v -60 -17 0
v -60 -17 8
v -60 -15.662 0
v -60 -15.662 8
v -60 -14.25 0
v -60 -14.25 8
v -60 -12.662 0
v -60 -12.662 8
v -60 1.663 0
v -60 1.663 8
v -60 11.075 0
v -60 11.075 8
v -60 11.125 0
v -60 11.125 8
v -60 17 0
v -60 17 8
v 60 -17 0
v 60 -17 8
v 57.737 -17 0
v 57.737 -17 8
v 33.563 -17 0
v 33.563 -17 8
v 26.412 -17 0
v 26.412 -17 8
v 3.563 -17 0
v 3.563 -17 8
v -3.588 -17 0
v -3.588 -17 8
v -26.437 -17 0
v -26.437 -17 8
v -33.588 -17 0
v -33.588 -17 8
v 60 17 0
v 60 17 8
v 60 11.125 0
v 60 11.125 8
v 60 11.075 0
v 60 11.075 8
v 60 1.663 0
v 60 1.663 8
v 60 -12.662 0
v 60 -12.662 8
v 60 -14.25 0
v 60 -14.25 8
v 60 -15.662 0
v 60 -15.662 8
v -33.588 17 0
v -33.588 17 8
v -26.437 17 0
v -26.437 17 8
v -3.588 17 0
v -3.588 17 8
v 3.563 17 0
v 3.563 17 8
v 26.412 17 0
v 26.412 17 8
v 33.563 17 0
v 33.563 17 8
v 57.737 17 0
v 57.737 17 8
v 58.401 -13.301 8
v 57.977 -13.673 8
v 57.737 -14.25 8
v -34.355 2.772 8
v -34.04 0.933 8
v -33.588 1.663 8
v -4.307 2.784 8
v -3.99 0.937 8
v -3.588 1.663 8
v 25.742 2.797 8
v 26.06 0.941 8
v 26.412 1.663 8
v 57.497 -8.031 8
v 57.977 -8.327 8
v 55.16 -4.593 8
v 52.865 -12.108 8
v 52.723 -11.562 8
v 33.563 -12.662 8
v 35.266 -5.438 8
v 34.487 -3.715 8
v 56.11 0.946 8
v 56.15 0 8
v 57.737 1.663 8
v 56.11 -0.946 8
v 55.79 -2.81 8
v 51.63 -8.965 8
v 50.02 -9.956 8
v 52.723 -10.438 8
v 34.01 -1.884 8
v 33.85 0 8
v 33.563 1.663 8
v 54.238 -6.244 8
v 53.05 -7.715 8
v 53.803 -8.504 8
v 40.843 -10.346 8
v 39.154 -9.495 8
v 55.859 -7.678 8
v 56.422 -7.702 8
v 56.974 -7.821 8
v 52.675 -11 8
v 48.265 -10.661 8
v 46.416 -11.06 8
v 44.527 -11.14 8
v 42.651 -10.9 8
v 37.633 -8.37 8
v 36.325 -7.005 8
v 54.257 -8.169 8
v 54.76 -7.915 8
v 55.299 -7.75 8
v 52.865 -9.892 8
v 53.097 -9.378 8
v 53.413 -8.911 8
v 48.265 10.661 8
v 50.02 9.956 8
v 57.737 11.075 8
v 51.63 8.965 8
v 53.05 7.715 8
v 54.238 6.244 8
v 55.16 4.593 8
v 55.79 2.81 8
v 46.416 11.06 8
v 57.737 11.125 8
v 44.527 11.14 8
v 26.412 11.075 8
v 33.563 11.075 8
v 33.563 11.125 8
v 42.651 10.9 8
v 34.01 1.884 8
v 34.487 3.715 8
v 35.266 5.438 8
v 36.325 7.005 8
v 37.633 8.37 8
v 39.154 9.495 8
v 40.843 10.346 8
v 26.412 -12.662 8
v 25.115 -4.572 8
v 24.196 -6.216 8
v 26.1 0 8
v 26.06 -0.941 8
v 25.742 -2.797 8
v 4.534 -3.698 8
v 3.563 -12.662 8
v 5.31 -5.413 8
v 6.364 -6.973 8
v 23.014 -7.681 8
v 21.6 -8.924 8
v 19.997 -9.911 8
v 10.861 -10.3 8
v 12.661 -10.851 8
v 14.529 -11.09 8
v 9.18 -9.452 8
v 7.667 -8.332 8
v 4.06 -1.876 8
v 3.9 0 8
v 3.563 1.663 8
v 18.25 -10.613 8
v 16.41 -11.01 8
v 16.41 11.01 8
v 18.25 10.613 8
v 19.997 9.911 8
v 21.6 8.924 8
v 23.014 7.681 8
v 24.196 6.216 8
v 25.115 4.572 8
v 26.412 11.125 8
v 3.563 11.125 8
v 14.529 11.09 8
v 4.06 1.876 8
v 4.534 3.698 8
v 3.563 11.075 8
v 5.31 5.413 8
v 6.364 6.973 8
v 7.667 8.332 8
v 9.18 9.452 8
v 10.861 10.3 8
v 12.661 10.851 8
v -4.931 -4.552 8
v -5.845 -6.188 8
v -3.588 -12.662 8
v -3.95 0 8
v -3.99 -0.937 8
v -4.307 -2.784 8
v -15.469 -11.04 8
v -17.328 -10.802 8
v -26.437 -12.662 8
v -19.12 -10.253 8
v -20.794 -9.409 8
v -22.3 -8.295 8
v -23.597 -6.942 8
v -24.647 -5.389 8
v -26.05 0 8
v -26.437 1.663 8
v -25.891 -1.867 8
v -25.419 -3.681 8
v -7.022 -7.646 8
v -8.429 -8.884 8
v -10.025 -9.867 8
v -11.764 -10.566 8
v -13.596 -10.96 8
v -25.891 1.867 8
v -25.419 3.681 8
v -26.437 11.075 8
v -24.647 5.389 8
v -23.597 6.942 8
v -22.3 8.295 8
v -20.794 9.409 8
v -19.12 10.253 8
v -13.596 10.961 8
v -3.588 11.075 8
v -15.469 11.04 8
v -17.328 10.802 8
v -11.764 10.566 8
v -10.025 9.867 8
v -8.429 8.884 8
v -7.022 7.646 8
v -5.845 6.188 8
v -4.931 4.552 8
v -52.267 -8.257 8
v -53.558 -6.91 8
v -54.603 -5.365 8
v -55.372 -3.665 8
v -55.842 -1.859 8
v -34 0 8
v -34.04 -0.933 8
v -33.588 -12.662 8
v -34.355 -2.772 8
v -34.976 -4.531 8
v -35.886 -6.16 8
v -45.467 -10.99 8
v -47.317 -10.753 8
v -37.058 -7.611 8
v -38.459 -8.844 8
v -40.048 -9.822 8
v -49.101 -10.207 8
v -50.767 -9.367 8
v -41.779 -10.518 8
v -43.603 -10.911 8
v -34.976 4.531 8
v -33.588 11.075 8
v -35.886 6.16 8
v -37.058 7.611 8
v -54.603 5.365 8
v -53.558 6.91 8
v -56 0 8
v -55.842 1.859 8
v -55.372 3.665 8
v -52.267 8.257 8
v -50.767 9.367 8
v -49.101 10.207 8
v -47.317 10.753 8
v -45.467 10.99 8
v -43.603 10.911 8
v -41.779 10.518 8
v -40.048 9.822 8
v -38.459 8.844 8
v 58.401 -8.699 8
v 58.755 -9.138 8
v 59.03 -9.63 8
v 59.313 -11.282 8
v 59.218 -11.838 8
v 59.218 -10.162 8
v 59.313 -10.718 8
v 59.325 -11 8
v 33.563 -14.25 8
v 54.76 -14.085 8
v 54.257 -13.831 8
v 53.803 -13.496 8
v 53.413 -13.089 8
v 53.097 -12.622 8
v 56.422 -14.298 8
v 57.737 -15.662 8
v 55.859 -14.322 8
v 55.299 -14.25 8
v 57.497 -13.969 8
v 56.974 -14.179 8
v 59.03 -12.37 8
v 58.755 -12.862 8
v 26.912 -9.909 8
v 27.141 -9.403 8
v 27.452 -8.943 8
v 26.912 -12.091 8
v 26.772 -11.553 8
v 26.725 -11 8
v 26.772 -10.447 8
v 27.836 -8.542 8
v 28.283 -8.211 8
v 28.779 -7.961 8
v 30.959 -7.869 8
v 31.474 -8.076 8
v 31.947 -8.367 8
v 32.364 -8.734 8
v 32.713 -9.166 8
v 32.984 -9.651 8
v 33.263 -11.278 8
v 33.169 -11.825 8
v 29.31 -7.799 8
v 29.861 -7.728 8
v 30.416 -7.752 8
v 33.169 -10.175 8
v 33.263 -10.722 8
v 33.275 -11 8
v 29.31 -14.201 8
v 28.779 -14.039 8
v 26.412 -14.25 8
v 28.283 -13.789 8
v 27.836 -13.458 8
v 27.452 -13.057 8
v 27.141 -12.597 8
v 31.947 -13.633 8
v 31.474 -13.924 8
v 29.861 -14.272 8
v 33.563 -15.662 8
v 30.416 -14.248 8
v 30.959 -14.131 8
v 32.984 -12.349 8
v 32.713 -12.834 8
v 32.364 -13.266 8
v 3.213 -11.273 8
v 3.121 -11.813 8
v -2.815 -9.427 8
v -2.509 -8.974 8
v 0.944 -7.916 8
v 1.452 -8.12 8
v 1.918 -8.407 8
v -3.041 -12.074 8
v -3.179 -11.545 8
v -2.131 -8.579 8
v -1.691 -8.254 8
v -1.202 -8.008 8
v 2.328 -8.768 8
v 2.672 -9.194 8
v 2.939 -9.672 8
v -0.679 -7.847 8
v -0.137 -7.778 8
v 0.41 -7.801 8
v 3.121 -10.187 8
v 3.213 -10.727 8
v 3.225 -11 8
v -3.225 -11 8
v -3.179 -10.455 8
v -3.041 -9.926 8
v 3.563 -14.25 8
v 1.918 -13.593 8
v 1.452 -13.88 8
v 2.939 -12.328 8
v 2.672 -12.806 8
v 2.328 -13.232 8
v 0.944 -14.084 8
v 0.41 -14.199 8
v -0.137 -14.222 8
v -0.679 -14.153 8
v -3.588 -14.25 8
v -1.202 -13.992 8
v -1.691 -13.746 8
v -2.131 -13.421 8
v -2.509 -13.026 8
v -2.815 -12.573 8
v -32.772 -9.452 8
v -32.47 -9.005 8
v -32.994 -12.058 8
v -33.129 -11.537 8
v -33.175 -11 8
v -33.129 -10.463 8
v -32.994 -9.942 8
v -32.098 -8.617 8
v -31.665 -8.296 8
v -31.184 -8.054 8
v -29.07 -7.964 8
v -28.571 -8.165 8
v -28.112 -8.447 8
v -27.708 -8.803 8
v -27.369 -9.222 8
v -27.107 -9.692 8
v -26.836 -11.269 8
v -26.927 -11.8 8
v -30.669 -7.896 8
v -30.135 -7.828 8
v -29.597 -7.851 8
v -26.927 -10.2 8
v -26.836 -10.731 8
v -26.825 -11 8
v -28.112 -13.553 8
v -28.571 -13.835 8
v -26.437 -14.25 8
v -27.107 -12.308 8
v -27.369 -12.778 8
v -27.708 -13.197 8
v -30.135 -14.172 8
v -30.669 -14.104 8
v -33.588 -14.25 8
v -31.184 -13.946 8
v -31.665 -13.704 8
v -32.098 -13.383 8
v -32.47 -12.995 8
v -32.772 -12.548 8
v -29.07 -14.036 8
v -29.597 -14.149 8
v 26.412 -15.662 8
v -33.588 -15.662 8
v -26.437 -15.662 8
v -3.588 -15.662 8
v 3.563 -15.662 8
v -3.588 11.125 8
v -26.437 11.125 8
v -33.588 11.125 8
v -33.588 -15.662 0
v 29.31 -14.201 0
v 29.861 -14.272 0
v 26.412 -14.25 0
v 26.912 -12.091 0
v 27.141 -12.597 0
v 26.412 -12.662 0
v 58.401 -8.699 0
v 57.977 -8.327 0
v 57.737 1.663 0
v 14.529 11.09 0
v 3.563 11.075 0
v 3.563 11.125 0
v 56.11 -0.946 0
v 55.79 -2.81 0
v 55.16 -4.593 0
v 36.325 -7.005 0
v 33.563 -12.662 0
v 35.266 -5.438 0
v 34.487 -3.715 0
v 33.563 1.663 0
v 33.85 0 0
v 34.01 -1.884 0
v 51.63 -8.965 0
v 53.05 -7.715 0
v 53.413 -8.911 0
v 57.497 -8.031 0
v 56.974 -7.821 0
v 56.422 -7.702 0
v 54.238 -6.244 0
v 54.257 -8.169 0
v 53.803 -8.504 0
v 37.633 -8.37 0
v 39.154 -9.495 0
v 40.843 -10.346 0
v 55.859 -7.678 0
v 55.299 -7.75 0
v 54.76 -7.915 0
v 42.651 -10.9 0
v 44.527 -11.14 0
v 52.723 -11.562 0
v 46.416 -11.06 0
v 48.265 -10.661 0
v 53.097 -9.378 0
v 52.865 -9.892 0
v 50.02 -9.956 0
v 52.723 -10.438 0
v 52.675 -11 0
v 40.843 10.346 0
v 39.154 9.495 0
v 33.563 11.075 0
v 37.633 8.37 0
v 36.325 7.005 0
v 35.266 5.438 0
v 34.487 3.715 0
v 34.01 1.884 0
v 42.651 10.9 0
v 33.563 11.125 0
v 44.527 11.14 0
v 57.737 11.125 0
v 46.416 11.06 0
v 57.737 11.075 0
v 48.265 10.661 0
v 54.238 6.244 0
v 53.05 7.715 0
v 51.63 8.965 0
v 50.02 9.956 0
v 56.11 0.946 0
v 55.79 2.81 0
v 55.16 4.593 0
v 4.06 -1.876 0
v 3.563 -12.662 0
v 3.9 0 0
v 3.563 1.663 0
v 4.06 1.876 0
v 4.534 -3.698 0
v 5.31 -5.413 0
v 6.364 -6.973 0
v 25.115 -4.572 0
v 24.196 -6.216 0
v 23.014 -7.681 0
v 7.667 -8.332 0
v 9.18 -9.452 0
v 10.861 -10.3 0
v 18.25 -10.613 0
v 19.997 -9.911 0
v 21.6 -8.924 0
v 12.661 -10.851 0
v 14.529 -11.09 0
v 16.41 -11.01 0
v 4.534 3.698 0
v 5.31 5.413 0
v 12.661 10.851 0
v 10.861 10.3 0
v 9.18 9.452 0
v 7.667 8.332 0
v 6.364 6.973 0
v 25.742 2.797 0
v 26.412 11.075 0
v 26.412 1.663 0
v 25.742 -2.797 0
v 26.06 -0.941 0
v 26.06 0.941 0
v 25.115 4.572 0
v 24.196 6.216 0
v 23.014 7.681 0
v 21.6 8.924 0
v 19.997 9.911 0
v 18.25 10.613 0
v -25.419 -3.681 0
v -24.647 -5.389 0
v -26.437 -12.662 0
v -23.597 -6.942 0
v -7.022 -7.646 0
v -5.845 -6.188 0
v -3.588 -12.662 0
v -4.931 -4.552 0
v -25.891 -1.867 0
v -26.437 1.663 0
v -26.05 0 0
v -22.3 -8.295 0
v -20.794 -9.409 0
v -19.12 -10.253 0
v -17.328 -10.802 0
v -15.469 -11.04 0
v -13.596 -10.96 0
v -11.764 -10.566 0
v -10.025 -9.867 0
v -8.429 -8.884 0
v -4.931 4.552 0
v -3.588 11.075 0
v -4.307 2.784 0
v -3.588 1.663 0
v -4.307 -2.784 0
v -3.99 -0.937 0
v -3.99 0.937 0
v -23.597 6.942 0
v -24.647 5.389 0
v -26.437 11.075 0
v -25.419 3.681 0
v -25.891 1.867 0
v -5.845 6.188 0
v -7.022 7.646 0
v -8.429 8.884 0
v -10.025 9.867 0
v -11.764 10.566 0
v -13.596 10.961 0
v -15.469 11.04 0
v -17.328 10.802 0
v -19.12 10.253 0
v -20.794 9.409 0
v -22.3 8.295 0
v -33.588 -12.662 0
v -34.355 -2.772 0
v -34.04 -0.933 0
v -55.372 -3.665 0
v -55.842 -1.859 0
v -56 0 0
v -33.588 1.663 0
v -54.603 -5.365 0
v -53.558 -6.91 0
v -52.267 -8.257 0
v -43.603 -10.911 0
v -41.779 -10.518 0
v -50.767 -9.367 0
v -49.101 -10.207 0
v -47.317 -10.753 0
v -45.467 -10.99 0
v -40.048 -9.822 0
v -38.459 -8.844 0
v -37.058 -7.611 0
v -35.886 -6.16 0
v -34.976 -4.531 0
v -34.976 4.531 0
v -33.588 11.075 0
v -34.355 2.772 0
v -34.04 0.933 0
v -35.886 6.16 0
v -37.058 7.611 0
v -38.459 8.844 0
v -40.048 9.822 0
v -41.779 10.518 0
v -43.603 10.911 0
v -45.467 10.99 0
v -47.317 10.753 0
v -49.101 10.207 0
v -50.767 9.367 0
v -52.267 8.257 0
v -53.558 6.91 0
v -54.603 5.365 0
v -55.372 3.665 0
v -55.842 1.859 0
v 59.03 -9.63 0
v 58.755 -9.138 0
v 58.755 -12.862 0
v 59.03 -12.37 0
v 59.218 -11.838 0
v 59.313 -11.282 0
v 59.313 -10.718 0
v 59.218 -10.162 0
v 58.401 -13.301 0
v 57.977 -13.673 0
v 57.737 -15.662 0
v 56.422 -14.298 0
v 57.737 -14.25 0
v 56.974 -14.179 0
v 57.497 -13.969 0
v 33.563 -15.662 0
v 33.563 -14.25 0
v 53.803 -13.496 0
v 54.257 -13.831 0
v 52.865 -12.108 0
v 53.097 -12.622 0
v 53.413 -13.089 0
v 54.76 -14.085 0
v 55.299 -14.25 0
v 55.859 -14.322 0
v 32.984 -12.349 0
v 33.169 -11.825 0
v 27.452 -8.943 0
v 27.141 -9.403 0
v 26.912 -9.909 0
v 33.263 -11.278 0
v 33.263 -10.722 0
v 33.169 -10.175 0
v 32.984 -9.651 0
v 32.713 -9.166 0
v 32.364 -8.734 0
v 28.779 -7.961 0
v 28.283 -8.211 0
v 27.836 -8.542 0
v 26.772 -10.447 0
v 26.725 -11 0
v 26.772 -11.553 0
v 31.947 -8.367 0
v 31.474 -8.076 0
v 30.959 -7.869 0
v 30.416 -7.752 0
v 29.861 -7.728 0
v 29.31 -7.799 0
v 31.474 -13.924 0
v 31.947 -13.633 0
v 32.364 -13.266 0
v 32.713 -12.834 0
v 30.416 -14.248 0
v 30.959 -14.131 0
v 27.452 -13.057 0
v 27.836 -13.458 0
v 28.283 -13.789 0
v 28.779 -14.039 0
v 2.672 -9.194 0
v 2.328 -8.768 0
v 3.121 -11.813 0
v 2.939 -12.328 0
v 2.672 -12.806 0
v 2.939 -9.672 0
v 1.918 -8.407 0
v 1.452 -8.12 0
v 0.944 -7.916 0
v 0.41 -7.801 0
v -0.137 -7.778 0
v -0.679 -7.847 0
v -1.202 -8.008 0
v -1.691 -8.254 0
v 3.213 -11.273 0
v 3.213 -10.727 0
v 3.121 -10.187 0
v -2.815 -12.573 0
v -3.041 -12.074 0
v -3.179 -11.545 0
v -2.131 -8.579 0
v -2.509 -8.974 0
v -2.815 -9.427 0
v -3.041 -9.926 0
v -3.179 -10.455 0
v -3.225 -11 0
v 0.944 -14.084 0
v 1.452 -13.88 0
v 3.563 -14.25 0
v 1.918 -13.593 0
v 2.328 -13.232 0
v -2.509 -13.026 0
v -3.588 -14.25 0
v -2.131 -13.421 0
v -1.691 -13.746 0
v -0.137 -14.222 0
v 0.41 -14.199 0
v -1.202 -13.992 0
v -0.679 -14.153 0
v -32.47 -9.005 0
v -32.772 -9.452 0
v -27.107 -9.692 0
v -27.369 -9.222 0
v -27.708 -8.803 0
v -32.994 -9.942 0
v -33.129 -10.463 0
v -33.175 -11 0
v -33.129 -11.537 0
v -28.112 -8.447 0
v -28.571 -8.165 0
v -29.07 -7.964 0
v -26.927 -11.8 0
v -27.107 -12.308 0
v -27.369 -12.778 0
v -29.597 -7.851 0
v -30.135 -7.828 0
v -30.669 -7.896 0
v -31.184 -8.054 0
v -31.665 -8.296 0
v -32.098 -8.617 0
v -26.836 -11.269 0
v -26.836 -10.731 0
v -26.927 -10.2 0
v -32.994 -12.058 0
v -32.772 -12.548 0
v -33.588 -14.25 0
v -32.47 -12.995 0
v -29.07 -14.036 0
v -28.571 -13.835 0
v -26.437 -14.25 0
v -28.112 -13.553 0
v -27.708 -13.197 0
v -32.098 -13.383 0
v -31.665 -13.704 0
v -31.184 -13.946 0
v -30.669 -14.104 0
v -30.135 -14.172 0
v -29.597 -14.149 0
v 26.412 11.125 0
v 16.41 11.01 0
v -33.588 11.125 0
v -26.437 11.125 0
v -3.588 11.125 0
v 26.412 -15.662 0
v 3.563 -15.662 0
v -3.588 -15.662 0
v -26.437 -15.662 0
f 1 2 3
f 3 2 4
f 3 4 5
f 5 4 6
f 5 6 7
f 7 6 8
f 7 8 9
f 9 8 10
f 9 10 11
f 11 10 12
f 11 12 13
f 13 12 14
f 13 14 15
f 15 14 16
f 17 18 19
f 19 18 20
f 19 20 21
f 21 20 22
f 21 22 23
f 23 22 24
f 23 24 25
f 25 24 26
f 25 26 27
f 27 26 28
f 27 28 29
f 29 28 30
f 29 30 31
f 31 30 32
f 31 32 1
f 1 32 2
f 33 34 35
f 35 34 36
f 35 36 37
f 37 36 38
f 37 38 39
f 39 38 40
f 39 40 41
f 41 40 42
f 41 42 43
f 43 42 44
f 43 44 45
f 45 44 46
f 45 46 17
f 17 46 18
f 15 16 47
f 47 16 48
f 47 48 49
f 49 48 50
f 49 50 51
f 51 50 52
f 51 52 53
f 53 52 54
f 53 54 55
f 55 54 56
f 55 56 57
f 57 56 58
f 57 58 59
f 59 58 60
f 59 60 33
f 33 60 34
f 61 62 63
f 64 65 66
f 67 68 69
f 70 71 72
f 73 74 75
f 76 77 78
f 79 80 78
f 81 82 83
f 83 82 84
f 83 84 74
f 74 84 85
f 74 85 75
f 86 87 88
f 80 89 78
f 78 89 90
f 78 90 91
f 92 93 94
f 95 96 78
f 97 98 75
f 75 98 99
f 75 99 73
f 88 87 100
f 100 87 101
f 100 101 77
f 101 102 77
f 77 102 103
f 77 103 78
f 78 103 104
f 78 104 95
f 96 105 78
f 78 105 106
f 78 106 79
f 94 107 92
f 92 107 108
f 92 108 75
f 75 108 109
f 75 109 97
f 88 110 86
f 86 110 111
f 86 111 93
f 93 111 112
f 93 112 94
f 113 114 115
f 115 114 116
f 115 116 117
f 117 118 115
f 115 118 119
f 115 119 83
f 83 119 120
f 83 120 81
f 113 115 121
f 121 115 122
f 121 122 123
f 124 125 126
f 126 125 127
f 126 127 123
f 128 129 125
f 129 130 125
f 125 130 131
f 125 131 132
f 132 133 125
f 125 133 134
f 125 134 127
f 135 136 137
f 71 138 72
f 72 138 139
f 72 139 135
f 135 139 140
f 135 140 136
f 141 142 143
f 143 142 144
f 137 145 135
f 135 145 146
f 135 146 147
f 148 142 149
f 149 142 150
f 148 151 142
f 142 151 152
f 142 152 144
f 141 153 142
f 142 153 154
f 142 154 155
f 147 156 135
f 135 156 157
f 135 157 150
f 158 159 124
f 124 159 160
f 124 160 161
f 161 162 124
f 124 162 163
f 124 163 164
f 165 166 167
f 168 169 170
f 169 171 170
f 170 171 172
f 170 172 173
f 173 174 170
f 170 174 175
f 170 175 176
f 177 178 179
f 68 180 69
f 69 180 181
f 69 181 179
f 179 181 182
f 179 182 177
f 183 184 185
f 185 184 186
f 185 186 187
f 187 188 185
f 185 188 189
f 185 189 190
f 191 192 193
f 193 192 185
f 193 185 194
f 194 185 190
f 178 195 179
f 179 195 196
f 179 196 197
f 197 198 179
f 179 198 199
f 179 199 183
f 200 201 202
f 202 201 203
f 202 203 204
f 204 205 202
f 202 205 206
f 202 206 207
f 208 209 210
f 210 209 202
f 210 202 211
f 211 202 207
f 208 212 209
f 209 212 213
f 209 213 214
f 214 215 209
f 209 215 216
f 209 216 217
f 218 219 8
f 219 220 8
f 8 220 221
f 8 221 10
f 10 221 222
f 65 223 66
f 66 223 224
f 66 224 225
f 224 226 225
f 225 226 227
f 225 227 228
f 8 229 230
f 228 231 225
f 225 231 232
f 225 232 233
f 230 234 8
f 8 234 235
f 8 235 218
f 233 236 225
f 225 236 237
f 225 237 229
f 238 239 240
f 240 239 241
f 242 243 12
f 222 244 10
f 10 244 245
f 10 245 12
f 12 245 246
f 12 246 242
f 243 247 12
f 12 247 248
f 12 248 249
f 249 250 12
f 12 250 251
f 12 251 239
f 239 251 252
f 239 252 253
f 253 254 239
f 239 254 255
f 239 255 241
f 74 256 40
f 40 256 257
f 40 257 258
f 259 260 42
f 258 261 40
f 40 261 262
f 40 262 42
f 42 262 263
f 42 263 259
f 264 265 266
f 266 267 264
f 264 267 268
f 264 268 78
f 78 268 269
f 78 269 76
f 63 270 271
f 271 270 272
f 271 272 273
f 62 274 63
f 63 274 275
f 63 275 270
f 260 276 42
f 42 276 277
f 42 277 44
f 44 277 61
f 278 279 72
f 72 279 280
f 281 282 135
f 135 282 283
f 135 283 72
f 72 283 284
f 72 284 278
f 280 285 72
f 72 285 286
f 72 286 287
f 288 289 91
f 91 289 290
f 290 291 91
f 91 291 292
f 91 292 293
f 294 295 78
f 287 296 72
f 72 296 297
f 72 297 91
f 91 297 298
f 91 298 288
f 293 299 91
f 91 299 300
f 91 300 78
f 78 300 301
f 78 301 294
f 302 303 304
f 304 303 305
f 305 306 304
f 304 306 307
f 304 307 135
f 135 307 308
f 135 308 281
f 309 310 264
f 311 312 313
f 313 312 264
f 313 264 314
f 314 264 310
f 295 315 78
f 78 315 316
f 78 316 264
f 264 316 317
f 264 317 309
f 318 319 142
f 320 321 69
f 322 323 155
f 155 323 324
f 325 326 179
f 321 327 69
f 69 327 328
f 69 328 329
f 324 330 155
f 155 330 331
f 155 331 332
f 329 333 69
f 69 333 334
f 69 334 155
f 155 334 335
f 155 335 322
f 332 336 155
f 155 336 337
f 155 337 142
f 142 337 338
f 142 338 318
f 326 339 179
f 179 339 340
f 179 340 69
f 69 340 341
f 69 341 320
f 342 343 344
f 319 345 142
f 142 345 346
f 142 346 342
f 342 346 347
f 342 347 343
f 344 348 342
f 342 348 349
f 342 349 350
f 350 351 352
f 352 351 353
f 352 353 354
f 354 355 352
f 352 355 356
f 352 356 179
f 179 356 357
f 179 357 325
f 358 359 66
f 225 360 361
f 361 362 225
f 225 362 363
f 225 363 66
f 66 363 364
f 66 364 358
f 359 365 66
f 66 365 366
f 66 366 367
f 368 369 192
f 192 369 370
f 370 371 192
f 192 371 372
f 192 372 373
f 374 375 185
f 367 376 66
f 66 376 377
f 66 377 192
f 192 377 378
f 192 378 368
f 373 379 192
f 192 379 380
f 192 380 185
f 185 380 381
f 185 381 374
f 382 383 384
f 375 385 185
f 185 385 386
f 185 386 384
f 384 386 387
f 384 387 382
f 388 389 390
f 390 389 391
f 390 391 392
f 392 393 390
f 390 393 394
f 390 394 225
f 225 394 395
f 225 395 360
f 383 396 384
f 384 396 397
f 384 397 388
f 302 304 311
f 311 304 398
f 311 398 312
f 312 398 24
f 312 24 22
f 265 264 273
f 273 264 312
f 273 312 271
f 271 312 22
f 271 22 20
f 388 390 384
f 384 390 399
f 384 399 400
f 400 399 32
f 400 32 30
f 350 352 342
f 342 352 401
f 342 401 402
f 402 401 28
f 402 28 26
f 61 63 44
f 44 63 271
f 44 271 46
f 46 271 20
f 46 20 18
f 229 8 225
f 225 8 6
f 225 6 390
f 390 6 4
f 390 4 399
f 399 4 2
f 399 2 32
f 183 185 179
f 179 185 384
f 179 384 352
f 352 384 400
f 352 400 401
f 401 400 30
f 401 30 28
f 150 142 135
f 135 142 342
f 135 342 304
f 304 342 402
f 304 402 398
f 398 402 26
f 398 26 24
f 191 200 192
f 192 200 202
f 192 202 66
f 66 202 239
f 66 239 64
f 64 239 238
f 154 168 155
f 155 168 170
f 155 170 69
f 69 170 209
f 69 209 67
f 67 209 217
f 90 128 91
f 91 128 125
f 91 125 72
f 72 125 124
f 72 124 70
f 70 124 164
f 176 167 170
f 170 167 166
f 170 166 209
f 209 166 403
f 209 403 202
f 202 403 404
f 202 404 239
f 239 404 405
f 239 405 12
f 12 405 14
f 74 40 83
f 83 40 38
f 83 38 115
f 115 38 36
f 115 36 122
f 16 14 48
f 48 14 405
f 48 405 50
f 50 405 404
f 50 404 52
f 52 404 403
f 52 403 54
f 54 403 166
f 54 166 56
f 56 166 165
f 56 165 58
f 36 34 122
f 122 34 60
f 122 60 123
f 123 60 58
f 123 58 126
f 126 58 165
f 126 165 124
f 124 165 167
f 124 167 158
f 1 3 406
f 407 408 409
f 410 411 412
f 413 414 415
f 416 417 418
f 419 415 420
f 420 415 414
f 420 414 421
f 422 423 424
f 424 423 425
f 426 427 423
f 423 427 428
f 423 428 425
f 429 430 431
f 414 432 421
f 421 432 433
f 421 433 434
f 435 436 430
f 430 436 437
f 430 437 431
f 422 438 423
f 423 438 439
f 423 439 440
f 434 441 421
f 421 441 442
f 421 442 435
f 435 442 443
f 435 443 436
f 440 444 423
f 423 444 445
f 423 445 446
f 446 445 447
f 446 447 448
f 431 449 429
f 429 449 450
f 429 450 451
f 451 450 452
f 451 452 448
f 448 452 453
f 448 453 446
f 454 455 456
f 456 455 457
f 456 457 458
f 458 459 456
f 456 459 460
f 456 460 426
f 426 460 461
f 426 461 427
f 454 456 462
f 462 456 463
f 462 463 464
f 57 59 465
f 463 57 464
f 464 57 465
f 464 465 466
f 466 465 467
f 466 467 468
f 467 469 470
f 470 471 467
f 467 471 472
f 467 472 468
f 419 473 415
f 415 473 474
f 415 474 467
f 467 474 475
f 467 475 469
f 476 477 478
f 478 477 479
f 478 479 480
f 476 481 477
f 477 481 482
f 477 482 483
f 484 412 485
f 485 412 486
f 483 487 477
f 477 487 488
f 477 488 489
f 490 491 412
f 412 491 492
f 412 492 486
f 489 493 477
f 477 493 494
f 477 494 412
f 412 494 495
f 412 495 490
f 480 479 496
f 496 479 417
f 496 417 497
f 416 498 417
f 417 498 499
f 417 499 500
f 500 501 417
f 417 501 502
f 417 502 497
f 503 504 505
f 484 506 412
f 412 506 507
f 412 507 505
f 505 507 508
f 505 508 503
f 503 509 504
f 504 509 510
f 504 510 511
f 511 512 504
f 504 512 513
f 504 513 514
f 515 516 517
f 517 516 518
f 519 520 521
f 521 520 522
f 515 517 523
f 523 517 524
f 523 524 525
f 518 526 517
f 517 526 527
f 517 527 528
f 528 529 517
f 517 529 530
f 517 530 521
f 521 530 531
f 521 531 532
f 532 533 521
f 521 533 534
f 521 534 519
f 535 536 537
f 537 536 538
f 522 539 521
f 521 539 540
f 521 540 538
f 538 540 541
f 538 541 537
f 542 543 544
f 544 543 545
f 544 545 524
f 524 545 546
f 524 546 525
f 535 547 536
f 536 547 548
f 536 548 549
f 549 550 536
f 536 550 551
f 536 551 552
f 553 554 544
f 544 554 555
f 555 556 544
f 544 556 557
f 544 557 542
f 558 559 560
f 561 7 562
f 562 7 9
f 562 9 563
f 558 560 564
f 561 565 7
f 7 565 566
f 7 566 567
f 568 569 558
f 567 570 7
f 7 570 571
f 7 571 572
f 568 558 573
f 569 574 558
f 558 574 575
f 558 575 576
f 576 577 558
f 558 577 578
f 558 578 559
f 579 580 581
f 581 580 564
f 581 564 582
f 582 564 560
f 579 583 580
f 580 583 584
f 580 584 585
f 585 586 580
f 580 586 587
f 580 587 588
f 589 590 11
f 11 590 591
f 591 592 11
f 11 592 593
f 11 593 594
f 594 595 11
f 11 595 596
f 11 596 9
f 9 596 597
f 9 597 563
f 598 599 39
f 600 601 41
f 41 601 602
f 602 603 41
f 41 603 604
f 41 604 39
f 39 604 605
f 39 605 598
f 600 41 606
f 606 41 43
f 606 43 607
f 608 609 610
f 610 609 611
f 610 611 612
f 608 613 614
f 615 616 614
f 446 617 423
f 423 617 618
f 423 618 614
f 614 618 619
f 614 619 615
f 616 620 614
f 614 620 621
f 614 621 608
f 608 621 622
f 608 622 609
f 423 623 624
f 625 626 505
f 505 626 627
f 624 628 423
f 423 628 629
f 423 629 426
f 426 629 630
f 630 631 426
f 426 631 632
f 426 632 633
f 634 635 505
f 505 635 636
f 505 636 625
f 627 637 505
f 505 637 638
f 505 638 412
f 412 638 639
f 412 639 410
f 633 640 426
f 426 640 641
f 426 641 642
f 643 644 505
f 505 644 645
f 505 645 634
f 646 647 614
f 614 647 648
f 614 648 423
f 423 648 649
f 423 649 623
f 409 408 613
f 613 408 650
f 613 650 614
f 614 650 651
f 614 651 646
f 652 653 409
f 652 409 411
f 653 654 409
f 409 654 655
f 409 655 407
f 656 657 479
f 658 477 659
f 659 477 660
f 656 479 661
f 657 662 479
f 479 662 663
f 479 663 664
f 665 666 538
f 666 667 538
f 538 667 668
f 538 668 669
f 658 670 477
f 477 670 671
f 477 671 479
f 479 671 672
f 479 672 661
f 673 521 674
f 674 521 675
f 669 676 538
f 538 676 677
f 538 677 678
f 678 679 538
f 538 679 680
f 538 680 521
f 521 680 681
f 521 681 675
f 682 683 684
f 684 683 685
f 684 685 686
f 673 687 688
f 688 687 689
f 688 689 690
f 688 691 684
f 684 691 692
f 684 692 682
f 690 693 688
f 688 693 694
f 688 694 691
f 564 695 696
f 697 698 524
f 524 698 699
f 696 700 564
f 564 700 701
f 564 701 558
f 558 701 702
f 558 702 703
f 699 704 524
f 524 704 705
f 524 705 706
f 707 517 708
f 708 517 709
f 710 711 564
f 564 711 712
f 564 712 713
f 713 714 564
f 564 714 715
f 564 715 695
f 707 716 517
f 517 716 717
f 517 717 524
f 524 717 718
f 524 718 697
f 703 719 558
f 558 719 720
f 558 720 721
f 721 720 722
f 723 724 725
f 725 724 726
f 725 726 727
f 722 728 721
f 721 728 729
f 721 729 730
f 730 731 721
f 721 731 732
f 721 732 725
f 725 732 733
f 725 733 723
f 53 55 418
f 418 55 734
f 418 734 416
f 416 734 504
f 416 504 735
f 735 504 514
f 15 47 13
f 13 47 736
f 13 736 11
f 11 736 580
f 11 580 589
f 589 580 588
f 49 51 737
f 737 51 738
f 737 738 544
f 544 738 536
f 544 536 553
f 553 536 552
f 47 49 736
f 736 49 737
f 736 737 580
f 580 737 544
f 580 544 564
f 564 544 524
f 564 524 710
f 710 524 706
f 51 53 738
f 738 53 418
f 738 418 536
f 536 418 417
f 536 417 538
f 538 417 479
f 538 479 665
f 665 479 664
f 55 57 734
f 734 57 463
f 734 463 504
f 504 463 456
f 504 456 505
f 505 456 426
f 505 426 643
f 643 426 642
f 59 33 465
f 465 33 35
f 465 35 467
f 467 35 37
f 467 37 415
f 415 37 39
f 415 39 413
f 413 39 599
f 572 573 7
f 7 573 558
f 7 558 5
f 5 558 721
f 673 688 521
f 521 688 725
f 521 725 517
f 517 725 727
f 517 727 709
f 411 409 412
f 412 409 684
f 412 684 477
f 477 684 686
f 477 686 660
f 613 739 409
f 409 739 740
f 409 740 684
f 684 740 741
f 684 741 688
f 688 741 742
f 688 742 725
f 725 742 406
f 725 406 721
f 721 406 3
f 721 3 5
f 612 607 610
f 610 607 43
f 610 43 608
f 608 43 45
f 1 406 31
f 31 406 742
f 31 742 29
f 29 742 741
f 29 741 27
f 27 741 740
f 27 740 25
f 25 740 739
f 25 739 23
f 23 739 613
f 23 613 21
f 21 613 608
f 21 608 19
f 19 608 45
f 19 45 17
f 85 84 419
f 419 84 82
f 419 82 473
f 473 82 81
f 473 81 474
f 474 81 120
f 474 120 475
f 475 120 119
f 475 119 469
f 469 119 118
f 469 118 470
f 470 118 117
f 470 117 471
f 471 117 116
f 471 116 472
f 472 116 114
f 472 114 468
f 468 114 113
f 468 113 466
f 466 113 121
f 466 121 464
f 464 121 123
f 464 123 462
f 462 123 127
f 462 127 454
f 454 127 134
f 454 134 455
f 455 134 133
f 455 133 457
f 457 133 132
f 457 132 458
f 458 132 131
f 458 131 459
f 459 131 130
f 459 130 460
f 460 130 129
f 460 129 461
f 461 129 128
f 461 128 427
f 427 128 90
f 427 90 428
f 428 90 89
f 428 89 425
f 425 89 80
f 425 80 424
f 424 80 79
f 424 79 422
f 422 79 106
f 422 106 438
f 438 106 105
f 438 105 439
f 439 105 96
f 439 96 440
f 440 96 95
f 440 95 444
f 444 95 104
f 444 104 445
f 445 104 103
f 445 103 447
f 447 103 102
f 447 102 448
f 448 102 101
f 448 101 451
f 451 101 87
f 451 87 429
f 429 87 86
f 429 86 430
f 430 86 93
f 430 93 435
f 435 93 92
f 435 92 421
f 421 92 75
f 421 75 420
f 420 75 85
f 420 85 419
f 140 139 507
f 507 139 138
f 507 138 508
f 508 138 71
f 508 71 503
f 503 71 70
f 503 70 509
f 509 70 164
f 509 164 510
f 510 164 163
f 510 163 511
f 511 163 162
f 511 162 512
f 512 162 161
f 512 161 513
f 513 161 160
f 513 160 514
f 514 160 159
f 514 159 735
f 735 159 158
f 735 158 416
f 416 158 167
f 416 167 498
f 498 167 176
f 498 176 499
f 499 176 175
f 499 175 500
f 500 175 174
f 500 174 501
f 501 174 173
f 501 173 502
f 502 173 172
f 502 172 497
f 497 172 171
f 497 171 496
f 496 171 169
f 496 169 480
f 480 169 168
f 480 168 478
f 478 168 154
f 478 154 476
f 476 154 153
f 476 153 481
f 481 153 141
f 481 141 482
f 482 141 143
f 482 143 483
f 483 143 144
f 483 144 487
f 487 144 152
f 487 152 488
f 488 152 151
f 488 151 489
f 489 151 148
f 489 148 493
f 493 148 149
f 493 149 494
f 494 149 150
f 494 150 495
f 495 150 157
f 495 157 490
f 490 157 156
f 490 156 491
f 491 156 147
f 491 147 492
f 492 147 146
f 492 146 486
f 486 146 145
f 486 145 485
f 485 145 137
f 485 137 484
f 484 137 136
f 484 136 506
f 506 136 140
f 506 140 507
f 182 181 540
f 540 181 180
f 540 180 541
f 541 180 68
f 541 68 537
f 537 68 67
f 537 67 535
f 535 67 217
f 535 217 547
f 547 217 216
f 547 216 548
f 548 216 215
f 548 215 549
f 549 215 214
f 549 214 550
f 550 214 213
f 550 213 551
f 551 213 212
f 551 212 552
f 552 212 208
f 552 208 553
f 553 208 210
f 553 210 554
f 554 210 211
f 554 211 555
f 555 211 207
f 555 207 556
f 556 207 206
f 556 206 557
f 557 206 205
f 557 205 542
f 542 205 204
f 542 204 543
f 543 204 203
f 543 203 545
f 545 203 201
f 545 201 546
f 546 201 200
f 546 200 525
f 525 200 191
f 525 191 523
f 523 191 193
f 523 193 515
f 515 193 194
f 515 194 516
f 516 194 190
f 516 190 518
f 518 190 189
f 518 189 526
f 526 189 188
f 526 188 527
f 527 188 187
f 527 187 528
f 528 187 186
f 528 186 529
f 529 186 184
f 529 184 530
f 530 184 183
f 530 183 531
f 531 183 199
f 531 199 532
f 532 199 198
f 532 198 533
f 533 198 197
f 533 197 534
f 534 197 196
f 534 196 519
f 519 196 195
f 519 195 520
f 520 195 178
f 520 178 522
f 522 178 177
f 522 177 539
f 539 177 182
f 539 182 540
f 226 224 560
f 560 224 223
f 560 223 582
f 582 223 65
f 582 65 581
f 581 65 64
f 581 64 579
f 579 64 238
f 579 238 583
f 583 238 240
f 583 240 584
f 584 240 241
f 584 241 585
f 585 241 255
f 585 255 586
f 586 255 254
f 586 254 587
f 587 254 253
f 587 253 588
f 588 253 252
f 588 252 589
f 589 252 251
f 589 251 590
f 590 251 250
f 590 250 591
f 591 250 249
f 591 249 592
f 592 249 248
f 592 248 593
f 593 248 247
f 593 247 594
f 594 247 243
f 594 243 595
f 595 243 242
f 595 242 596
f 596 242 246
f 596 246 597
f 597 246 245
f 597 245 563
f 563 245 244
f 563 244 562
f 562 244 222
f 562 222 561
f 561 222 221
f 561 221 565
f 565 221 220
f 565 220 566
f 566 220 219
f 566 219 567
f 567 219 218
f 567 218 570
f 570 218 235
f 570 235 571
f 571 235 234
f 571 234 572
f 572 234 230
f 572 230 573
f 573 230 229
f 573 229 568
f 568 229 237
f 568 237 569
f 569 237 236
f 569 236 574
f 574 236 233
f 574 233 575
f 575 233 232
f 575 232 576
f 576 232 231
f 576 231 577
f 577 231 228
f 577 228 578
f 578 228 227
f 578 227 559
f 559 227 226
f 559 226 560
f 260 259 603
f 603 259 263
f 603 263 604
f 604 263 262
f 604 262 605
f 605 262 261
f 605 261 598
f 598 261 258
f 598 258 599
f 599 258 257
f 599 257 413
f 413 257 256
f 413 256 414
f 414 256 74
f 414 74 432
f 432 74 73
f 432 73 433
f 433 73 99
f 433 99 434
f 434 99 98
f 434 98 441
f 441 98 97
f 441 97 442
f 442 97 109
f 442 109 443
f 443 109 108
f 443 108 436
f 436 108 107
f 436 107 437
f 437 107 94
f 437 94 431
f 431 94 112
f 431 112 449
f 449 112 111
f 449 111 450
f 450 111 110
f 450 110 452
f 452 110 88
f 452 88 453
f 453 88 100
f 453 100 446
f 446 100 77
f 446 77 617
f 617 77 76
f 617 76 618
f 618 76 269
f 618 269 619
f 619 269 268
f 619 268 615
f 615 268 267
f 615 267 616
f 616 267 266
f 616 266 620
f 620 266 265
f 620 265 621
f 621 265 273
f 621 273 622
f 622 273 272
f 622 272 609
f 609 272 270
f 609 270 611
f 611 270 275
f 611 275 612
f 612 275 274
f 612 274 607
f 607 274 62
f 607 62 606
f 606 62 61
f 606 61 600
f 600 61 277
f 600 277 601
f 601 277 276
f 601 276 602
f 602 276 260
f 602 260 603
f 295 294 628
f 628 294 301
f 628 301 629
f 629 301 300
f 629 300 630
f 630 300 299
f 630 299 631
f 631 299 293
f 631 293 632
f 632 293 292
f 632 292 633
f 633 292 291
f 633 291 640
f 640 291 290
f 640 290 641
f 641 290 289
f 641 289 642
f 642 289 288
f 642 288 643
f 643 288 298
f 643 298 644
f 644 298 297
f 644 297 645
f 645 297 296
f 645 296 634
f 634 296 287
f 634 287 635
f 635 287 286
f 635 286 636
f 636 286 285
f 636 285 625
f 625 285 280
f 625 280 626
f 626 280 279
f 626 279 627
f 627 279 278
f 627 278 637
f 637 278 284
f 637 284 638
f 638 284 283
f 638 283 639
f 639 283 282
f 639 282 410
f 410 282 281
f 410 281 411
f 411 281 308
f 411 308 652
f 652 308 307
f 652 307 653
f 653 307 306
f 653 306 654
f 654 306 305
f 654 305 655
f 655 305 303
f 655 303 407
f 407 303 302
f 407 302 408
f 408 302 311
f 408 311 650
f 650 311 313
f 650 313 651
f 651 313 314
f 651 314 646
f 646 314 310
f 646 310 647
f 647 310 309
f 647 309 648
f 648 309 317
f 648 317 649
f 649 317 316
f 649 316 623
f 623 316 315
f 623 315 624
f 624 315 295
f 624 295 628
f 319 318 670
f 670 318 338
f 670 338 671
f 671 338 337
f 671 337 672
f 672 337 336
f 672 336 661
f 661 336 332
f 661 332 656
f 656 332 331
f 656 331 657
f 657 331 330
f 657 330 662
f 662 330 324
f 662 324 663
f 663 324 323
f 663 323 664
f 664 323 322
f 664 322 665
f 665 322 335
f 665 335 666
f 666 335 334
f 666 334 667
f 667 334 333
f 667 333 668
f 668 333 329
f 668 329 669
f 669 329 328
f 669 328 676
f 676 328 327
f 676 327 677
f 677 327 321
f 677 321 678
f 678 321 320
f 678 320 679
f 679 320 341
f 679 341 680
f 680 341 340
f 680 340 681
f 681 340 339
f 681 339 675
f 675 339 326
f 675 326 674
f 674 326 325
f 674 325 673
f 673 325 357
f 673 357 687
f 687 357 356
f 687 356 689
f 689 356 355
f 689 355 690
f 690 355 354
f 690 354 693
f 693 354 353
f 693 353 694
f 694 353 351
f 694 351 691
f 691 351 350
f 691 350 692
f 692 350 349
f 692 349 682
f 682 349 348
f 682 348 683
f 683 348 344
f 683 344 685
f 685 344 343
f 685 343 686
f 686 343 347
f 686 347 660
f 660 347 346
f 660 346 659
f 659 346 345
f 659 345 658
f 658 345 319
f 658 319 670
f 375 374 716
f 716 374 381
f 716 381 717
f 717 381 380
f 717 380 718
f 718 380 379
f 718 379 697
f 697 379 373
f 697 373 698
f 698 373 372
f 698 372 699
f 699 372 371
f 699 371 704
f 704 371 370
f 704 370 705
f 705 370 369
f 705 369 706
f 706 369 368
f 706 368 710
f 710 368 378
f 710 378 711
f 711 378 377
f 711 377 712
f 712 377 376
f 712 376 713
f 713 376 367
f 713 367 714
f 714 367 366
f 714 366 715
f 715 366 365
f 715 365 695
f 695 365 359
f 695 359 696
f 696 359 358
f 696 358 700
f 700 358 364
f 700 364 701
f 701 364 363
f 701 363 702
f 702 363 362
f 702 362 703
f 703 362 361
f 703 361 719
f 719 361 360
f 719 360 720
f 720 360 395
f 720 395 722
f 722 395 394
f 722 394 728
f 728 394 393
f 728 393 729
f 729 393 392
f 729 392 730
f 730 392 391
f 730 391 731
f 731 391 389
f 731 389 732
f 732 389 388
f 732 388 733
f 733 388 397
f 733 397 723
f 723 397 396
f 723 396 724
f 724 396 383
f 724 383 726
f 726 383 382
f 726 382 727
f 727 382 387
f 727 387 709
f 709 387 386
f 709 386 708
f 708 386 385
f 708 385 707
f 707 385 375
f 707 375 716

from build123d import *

# Parameters (mm, degrees)
COUPON_PLATE_PROFILE_W                     = 120
COUPON_PLATE_PROFILE_H                     = 34
COUPON_PLATE_DEPTH                         = 8
BEARING_FIT_TRIAL_THROUGH_START            = -1
BEARING_SEAT_TRIAL_22P0_22P1_22P2_22P3_R   = 11
BEARING_SEAT_TRIAL_22P0_22P1_22P2_22P3_R_2 = 11.05
BEARING_SEAT_TRIAL_22P0_22P1_22P2_22P3_R_3 = 11.1
BEARING_SEAT_TRIAL_22P0_22P1_22P2_22P3_R_4 = 11.15
BEARING_FIT_TRIAL_THROUGH_DEPTH            = 64.872887638
DOWEL_FIT_TRIAL_THROUGH_START              = -1
DOWEL_TRIAL_6P35_6P45_6P55_6P65_R          = 3.175
DOWEL_TRIAL_6P35_6P45_6P55_6P65_R_2        = 3.225
DOWEL_TRIAL_6P35_6P45_6P55_6P65_R_3        = 3.275
DOWEL_TRIAL_6P35_6P45_6P55_6P65_R_4        = 3.325
DOWEL_FIT_TRIAL_THROUGH_DEPTH              = 64.872887638


with BuildPart() as part:
    # Coupon_plate_profile → Coupon_plate (new body)
    with BuildSketch(Plane.XY):
        Rectangle(COUPON_PLATE_PROFILE_W, COUPON_PLATE_PROFILE_H)
    extrude(amount=COUPON_PLATE_DEPTH)

    # Bearing_seat_trial_22p0_22p1_22p2_22p3 → Bearing_fit_trial_through (cut, through all)
    with BuildSketch(Plane.XY.offset(BEARING_FIT_TRIAL_THROUGH_START)):
        with Locations(Location((-45, 0, 0), (0, 0, 180))):
            Circle(BEARING_SEAT_TRIAL_22P0_22P1_22P2_22P3_R)
        with Locations(Location((-15, 0, 0), (0, 0, 180))):
            Circle(BEARING_SEAT_TRIAL_22P0_22P1_22P2_22P3_R_2)
        with Locations(Location((15, 0, 0), (0, 0, 180))):
            Circle(BEARING_SEAT_TRIAL_22P0_22P1_22P2_22P3_R_3)
        with Locations(Location((45, 0, 0), (0, 0, 180))):
            Circle(BEARING_SEAT_TRIAL_22P0_22P1_22P2_22P3_R_4)
    extrude(amount=BEARING_FIT_TRIAL_THROUGH_DEPTH, mode=Mode.SUBTRACT)

    # Dowel_trial_6p35_6p45_6p55_6p65 → Dowel_fit_trial_through (cut, through all)
    with BuildSketch(Plane.XY.offset(DOWEL_FIT_TRIAL_THROUGH_START)):
        with Locations(Location((-30, -11, 0), (0, 0, 180))):
            Circle(DOWEL_TRIAL_6P35_6P45_6P55_6P65_R)
        with Locations(Location((0, -11, 0), (0, 0, 180))):
            Circle(DOWEL_TRIAL_6P35_6P45_6P55_6P65_R_2)
        with Locations(Location((30, -11, 0), (0, 0, 180))):
            Circle(DOWEL_TRIAL_6P35_6P45_6P55_6P65_R_3)
        with Locations(Location((56, -11, 0), (0, 0, 180))):
            Circle(DOWEL_TRIAL_6P35_6P45_6P55_6P65_R_4)
    extrude(amount=DOWEL_FIT_TRIAL_THROUGH_DEPTH, mode=Mode.SUBTRACT)


solid = part.part
